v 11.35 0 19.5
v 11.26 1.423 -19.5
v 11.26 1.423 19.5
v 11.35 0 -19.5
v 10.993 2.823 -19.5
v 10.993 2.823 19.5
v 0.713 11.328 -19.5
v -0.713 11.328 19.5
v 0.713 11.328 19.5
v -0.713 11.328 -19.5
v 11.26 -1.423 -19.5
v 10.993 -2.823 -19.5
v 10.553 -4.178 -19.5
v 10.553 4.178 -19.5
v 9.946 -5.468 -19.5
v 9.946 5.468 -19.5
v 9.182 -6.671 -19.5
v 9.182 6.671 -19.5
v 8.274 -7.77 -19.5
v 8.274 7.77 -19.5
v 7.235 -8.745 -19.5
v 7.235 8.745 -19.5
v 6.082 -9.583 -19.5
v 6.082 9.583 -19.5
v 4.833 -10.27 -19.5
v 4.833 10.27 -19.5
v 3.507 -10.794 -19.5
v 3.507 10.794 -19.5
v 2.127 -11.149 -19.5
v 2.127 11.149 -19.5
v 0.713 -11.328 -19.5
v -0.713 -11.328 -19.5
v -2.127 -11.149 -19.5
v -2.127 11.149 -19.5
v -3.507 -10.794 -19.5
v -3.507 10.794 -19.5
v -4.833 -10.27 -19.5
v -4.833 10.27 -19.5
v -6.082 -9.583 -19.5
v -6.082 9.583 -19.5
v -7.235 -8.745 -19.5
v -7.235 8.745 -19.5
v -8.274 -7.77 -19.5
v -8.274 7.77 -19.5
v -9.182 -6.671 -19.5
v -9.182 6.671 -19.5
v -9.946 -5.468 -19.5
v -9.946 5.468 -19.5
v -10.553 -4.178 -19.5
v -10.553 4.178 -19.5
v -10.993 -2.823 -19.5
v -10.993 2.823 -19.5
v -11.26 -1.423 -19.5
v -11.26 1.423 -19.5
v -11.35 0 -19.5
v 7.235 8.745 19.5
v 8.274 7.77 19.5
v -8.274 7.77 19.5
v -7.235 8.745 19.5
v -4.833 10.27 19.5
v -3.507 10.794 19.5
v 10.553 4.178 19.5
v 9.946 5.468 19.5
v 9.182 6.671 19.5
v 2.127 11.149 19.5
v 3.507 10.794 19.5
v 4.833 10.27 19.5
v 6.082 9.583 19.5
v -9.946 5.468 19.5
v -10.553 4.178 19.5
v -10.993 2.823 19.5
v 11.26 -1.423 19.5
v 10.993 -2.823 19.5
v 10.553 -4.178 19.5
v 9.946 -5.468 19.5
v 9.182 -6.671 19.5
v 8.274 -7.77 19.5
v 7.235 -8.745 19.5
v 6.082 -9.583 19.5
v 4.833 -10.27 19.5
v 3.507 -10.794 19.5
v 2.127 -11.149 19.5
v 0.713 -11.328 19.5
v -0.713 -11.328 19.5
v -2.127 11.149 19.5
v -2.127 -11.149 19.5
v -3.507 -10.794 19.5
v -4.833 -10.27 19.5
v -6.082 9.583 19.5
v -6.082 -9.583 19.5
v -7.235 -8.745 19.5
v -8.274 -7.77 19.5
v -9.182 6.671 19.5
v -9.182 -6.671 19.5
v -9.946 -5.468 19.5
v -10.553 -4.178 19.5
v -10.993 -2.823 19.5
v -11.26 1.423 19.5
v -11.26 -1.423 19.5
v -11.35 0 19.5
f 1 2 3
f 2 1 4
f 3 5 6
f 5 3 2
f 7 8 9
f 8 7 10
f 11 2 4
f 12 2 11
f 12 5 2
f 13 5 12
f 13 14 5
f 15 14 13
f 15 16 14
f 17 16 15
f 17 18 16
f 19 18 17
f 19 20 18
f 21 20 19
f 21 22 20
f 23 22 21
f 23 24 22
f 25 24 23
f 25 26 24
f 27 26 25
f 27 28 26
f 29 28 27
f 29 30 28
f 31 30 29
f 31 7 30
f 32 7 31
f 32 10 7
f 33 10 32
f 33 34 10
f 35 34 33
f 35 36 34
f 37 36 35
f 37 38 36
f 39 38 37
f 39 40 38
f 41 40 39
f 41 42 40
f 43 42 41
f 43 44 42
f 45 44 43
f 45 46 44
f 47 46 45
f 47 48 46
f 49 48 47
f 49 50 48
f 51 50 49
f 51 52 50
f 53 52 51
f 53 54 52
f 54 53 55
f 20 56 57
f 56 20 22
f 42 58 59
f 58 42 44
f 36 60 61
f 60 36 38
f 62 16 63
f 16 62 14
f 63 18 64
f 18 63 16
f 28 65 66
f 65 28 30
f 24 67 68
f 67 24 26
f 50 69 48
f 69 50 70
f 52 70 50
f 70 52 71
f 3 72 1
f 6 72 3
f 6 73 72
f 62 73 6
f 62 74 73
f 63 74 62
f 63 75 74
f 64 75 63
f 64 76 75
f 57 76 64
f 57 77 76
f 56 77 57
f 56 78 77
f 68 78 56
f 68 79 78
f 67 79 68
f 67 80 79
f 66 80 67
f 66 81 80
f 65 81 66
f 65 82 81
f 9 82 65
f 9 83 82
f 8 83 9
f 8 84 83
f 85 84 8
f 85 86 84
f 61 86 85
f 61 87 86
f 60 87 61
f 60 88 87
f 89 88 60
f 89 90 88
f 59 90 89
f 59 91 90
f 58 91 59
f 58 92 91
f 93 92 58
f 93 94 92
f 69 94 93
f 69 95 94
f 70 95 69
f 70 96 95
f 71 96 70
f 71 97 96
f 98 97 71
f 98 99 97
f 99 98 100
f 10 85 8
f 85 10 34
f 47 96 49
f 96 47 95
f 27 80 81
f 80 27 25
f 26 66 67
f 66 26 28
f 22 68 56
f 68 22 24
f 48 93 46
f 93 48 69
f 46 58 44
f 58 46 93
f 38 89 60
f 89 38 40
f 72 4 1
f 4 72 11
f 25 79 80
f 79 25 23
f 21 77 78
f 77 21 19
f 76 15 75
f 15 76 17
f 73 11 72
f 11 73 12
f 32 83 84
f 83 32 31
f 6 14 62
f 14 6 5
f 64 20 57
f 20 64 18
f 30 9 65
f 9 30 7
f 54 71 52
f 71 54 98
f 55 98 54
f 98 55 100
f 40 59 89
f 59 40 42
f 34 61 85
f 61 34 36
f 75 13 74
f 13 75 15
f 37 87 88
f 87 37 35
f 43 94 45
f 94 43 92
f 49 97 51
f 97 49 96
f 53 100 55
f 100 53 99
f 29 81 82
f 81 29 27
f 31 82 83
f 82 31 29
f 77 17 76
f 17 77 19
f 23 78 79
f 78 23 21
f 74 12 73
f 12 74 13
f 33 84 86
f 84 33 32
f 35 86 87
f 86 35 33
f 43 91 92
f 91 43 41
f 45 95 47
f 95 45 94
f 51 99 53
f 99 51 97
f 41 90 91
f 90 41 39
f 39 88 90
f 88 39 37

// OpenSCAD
$fn = 50;


difference() {
	union() {
		translate(v = [0, 0, -19.5000000000]) {
			cylinder(h = 39, r = 11.3500000000);
		}
	}
	union() {
		translate(v = [0, 0, -100.0000000000]) {
			cylinder(h = 200, r = 0);
		}
	}
}
